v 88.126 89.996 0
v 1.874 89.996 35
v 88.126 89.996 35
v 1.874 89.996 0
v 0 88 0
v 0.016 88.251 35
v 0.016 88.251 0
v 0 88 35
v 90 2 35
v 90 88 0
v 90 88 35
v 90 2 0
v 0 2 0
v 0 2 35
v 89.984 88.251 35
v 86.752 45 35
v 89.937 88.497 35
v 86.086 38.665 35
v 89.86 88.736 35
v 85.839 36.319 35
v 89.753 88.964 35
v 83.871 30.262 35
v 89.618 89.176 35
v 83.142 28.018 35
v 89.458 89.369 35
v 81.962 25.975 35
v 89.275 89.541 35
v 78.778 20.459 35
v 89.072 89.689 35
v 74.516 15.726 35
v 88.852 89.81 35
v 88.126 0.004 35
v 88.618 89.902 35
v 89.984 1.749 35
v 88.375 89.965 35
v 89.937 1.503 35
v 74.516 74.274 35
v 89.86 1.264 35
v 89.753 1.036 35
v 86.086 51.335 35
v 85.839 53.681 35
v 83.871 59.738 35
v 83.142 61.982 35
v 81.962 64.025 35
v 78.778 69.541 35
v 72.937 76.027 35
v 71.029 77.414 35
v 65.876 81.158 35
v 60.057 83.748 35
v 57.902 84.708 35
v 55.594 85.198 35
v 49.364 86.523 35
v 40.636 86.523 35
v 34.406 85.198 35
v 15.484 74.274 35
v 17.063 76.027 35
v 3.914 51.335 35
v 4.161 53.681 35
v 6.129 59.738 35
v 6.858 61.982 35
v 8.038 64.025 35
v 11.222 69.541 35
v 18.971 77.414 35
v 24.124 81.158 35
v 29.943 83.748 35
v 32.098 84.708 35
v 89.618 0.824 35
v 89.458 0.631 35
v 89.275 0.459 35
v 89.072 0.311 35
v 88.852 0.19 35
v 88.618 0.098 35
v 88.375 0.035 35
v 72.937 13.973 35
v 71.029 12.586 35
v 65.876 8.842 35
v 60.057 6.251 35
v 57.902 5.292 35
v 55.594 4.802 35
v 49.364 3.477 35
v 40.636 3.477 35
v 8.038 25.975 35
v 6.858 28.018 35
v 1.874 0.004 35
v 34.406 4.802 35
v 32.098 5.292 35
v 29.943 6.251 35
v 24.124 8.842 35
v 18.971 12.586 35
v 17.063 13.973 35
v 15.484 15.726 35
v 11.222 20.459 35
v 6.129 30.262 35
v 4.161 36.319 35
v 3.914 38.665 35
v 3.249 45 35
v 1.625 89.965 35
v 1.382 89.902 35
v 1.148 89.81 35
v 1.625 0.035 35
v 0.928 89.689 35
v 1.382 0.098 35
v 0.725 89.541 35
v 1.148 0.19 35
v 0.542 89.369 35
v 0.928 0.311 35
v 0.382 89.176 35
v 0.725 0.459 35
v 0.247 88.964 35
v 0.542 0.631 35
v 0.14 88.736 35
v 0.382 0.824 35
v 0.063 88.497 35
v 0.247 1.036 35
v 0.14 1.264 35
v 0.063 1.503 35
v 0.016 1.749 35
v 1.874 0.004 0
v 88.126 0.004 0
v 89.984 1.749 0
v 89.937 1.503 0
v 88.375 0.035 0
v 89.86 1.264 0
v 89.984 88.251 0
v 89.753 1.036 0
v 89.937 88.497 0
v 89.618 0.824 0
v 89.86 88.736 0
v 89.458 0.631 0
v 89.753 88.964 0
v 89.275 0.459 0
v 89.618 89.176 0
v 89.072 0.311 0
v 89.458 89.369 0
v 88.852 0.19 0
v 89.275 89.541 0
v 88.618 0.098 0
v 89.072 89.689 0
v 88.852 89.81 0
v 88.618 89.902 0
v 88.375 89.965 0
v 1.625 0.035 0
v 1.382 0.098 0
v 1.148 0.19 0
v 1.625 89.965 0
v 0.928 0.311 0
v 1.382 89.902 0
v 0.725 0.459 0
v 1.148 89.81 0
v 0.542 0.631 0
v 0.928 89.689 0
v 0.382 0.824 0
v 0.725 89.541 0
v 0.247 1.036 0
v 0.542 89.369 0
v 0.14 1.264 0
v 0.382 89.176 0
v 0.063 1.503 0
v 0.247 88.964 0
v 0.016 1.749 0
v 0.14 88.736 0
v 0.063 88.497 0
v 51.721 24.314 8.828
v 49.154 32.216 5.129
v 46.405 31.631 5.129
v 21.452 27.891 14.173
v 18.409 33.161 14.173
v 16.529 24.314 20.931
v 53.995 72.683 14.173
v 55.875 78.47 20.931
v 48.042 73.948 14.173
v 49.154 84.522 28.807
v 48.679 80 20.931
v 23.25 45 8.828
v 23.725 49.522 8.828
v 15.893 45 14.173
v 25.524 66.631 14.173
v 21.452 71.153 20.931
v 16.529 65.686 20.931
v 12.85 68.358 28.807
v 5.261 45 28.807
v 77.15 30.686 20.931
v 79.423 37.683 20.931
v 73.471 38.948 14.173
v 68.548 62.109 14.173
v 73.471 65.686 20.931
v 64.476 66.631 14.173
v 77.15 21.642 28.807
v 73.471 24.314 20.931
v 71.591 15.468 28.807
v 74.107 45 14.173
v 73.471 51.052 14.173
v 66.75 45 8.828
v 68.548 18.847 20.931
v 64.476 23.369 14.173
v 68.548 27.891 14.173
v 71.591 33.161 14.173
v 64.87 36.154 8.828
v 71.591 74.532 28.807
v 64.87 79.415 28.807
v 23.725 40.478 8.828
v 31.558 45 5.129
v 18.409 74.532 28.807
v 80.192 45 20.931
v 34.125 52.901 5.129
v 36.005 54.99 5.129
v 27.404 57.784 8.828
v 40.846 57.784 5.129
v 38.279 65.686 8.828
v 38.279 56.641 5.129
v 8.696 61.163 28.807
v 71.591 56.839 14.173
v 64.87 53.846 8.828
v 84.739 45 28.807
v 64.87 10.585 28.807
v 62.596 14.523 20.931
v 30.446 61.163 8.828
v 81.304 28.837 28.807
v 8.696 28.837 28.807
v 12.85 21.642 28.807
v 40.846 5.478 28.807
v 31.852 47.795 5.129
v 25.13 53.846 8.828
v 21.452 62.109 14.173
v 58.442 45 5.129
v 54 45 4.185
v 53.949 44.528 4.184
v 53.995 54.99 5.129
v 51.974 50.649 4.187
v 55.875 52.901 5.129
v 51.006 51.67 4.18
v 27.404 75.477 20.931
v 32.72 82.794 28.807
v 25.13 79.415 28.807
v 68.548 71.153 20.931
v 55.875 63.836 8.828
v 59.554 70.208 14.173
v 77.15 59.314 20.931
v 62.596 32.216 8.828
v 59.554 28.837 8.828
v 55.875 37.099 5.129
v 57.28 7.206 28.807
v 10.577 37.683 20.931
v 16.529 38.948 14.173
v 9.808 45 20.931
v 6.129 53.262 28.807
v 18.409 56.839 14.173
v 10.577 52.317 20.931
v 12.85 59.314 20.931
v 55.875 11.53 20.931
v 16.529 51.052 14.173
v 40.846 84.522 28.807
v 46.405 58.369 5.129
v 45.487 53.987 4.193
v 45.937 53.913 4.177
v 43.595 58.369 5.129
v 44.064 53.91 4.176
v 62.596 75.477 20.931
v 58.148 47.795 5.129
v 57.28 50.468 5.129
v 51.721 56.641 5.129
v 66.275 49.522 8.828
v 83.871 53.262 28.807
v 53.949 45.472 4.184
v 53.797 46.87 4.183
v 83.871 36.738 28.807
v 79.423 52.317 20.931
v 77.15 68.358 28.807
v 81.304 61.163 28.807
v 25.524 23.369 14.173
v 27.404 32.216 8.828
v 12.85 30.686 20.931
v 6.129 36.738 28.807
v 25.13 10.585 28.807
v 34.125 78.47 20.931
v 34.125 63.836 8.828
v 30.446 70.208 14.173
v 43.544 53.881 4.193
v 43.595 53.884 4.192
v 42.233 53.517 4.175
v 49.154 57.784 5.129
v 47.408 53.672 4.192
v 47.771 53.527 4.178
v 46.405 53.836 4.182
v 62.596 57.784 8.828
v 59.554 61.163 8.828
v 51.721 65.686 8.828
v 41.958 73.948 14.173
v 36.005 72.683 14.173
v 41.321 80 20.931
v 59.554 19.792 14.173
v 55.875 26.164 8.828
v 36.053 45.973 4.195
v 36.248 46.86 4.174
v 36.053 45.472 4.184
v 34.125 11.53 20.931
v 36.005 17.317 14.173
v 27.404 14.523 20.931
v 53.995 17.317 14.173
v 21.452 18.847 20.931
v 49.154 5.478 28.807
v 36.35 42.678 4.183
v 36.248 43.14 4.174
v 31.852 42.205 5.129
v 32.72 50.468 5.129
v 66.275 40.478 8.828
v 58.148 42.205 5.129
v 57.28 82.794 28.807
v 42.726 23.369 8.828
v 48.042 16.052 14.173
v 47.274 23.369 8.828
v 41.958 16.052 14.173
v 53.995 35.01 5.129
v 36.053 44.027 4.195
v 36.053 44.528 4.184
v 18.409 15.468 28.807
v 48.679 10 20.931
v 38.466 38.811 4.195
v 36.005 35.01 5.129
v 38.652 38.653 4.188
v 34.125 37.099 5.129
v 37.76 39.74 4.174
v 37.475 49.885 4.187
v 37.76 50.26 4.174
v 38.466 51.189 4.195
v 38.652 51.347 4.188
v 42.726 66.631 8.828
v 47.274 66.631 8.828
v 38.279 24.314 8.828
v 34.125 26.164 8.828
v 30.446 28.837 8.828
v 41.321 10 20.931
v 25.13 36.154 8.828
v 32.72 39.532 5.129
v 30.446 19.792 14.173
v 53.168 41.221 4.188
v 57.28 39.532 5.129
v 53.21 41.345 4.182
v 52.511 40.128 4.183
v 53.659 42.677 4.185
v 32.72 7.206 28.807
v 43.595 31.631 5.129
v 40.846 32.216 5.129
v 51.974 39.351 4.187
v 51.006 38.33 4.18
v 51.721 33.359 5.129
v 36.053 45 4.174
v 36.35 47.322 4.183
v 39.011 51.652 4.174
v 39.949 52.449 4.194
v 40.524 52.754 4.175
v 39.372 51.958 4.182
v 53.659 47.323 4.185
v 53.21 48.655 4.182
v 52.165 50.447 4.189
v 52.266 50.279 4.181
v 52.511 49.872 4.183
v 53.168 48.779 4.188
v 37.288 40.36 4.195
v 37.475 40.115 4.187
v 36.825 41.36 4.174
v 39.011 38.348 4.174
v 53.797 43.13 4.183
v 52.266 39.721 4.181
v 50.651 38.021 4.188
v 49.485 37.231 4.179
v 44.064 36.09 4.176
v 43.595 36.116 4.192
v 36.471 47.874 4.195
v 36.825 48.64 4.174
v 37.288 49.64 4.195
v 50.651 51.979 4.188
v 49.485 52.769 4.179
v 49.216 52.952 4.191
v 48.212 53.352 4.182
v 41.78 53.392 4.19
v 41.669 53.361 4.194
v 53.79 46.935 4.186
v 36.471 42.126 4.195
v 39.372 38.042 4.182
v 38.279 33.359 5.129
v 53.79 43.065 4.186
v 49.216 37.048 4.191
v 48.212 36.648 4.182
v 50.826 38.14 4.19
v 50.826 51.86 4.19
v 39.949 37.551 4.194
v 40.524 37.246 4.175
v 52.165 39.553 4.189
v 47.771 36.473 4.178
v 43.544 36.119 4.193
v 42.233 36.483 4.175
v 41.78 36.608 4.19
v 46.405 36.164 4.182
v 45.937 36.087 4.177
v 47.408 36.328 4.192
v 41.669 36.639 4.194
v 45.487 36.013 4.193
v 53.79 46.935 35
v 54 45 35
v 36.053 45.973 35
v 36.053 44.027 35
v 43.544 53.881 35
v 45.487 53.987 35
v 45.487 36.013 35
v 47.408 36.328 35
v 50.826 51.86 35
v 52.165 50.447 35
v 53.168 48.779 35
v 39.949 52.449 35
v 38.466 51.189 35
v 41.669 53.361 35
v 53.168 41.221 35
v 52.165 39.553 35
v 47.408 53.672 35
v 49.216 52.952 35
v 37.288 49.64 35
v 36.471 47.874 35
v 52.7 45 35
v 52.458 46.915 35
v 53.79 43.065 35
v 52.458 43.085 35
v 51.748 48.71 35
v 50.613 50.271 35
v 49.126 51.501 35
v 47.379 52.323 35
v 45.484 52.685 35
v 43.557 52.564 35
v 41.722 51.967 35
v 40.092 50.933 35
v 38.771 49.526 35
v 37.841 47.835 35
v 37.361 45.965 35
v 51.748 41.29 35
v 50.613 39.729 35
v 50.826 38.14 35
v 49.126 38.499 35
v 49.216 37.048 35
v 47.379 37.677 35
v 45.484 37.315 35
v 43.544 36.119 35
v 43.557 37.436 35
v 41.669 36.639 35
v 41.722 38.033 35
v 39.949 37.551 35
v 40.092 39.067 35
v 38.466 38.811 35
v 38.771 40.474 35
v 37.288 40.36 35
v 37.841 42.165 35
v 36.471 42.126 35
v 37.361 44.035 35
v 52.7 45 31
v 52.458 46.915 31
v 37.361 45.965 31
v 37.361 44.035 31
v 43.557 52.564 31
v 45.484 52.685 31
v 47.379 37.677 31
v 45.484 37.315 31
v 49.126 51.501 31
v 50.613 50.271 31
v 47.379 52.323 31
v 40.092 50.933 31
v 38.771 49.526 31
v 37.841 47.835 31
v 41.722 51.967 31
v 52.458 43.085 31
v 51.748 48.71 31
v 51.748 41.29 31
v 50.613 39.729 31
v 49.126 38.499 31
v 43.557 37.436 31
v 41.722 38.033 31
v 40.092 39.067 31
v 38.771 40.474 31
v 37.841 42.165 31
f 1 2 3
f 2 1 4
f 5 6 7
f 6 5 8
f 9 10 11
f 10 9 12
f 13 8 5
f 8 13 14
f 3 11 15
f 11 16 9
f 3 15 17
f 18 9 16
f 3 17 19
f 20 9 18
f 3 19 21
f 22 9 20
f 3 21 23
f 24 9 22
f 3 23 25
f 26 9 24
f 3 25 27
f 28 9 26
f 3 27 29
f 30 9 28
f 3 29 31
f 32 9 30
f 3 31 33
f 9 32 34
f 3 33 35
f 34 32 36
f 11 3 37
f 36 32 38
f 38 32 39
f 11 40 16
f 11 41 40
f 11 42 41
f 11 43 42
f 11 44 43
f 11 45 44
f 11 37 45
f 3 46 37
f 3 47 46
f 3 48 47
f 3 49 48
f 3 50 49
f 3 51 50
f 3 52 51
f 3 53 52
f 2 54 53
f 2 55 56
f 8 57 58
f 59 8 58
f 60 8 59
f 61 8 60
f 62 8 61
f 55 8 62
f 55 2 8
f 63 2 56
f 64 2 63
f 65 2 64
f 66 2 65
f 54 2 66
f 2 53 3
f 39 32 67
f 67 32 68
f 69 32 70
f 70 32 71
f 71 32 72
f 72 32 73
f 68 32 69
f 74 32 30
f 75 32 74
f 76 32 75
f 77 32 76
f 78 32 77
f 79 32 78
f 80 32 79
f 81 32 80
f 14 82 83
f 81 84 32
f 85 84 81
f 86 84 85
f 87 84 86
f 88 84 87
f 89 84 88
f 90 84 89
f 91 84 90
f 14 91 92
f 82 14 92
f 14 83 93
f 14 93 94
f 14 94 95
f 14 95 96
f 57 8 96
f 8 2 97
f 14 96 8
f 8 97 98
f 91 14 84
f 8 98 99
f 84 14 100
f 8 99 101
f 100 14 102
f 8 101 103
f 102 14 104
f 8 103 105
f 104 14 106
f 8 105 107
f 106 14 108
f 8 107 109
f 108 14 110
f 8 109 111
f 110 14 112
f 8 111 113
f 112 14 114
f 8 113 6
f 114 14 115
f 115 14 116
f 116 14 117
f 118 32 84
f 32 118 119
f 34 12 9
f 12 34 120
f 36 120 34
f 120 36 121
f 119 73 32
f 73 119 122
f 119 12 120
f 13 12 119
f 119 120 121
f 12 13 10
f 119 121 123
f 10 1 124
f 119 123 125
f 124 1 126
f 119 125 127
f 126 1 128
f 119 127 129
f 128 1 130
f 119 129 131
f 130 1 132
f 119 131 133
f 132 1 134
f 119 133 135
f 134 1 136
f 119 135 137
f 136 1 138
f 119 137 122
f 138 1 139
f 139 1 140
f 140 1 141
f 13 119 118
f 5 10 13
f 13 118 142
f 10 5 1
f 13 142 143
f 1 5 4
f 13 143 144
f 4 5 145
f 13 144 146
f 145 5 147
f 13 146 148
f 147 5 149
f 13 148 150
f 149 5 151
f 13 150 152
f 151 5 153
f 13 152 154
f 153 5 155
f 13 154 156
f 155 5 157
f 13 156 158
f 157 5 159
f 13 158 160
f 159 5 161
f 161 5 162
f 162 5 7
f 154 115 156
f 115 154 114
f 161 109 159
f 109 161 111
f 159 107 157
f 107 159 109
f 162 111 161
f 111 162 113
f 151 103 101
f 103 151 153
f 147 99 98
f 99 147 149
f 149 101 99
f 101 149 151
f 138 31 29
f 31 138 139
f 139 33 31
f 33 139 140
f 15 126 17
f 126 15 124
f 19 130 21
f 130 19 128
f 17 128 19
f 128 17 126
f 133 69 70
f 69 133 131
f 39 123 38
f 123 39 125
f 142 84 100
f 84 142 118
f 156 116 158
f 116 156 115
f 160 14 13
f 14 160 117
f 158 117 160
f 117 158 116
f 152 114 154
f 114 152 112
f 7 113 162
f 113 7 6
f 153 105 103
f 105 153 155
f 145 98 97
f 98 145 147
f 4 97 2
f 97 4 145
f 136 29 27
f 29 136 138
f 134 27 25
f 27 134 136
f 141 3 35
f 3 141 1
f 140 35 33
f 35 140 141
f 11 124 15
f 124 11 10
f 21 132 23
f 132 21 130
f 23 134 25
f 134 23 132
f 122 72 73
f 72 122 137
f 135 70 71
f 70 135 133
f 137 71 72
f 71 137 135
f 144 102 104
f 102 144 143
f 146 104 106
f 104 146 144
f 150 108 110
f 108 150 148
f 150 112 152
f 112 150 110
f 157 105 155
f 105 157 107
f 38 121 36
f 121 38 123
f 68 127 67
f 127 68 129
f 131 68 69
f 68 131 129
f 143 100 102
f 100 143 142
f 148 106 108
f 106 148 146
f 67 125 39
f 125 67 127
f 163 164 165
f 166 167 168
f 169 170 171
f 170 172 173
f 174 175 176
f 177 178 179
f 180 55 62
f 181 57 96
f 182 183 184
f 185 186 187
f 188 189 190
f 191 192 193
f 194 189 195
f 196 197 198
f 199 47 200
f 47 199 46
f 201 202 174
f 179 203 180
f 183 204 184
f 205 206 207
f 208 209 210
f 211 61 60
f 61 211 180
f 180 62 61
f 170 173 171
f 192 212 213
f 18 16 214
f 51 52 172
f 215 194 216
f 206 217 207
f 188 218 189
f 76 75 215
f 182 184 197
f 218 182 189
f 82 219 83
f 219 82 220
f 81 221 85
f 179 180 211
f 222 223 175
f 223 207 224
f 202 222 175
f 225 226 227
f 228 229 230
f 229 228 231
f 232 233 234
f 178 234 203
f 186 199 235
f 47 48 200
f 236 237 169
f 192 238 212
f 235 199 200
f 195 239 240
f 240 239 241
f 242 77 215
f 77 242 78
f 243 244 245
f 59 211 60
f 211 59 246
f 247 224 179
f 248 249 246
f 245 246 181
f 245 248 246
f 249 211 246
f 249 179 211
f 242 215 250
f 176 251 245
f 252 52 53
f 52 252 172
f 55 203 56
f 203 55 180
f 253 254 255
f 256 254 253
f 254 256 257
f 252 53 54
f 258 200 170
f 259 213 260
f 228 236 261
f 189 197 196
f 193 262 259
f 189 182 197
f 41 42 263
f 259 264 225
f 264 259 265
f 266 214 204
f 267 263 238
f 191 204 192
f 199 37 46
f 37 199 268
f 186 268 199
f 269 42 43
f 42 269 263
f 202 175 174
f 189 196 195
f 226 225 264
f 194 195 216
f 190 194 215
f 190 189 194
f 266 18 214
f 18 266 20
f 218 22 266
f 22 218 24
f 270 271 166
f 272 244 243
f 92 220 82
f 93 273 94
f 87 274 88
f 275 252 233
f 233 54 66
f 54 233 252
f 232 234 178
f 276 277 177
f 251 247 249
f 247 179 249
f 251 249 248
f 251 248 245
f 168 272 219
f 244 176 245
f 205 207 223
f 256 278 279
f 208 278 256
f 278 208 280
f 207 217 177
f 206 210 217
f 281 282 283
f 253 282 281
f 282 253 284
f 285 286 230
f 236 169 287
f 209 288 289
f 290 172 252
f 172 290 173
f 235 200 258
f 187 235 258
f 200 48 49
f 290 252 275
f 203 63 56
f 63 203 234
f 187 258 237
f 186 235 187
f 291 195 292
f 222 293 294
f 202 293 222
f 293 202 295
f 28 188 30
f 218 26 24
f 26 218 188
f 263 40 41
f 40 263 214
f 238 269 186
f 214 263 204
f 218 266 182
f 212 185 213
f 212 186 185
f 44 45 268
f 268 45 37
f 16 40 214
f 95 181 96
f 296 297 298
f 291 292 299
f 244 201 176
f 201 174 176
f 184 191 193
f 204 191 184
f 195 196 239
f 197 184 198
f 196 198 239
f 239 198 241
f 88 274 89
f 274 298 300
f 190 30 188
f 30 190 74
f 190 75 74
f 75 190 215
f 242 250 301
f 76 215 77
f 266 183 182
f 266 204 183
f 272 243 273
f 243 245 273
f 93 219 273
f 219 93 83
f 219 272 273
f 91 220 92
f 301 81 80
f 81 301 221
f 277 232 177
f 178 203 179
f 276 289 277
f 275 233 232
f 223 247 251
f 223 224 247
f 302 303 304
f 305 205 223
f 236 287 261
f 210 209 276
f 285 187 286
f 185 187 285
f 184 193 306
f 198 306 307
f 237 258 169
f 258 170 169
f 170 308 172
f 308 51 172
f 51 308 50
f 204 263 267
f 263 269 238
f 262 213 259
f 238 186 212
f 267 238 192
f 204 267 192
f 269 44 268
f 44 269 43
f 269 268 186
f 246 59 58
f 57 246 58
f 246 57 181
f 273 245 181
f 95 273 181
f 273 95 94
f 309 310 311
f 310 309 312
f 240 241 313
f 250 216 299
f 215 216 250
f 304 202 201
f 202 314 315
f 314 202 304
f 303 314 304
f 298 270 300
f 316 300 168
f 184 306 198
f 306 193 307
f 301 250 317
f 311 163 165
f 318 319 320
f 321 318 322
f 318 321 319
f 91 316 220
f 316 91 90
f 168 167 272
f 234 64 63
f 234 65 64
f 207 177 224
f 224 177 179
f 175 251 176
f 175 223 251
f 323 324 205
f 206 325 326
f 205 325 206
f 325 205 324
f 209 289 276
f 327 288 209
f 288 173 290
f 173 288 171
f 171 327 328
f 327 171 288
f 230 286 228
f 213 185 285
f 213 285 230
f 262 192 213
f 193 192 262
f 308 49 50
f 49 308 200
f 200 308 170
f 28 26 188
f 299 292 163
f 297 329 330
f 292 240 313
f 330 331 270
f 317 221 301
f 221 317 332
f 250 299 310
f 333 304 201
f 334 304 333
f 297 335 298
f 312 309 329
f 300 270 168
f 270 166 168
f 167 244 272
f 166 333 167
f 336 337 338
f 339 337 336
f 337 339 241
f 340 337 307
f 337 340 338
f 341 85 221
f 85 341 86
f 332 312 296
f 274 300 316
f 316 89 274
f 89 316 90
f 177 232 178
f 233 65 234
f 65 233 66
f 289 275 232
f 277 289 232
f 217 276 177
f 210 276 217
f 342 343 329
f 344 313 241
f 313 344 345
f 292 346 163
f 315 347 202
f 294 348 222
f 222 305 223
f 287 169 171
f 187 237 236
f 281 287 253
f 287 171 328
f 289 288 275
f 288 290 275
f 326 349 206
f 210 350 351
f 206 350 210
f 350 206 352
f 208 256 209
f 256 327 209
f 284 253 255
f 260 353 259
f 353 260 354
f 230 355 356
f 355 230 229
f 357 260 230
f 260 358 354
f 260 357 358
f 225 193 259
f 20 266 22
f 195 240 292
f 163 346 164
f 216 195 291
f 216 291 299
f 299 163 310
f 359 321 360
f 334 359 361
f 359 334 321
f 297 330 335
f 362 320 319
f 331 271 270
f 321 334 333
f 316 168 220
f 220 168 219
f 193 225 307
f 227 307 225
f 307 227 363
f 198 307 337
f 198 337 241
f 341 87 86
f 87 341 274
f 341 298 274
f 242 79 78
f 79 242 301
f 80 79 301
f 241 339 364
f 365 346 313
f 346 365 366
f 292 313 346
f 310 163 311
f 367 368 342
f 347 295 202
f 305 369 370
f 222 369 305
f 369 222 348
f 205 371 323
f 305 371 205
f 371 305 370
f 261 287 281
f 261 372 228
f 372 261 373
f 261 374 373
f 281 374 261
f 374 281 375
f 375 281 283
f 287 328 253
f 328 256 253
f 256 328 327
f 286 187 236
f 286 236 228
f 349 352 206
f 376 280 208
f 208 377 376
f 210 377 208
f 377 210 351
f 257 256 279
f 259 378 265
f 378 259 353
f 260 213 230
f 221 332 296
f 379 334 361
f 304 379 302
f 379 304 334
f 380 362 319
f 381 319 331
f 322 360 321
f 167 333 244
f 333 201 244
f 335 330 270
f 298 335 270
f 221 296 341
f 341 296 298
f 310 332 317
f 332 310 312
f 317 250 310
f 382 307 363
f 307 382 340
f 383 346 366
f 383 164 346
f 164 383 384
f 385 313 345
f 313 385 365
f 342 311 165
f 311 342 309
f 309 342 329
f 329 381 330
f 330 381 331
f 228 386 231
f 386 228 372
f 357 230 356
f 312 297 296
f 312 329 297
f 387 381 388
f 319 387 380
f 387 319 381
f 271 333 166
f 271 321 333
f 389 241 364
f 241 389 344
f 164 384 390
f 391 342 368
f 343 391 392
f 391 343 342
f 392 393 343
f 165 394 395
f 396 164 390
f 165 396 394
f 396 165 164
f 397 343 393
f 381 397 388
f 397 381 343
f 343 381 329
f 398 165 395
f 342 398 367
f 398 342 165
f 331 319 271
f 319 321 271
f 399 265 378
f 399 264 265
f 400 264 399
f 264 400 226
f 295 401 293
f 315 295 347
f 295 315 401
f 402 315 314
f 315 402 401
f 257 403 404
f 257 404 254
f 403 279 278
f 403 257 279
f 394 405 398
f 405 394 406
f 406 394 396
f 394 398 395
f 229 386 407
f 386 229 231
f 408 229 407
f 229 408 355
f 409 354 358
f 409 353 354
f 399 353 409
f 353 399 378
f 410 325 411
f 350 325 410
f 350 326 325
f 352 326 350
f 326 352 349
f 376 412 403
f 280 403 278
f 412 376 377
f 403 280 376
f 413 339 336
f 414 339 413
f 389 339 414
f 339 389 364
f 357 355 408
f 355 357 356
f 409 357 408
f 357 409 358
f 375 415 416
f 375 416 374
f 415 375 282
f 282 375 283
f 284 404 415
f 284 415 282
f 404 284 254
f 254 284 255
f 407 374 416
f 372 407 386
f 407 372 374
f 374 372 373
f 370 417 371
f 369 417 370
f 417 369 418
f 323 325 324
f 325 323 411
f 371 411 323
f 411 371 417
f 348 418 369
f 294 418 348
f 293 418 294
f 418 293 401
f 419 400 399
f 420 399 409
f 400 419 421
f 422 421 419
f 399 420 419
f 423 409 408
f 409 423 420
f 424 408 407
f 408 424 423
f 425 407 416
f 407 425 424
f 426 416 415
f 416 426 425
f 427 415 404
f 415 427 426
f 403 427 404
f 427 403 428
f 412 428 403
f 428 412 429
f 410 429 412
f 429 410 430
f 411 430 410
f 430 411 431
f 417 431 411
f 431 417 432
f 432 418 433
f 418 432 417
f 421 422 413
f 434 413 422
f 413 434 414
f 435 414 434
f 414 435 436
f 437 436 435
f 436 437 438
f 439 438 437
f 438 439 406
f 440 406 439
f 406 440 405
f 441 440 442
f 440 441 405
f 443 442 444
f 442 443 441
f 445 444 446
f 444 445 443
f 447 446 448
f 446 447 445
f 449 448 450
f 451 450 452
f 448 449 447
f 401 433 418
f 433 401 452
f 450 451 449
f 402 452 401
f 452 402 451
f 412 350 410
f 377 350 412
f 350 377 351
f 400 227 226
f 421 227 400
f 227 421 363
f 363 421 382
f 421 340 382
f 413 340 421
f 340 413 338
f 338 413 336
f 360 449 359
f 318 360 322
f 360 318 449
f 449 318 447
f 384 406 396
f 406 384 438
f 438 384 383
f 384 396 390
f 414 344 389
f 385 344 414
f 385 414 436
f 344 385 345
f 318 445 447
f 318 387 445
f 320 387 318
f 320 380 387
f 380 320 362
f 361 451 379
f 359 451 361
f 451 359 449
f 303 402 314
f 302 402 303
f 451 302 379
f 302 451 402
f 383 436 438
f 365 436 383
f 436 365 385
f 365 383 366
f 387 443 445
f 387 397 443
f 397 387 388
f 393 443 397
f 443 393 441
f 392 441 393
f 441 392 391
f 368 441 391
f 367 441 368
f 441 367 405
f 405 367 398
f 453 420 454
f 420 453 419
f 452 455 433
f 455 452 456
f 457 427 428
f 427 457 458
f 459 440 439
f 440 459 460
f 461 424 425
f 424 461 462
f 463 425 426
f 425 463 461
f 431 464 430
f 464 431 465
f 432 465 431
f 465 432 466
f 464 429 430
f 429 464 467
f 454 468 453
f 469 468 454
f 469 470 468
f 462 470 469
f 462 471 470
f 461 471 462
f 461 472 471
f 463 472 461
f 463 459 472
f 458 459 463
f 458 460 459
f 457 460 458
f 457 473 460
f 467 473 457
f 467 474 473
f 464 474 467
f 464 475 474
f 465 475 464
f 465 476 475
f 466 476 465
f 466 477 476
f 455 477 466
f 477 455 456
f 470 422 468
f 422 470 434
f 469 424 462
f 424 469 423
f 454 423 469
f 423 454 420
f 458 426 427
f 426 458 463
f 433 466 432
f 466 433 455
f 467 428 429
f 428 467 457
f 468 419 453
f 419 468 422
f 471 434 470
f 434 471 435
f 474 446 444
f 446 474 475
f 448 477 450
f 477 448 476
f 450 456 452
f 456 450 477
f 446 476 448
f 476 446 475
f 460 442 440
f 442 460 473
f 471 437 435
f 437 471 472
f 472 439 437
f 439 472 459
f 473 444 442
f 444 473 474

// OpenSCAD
length = 90;
width = 90;
height = 35;
wallThickness = 3;
sphereWidth = width - wallThickness;
floorHeight = 3;
pillarSideLength = 9;
pillarHeight = height;
magnetBaseInnerDiameter = 15.4;
magnetHeight = 4.0;

union() {
    difference() {
        union(){
            $fn=50;
            minkowski()
            {
              translate([2,2,0])
                cube([length-4, width-4, height - 1]);
              cylinder(r=2,h=1);
            }
        }
        translate([length/2, width/2, sphereWidth/2 + floorHeight])
            sphere(d=sphereWidth);
    }
    difference() {
        translate([length/2, width/2, 0])
            cylinder(r=pillarSideLength,h=pillarHeight);
        translate([length/2,  width/2, pillarHeight - magnetHeight])
            cylinder(magnetHeight, d=magnetBaseInnerDiameter);
    }
}
